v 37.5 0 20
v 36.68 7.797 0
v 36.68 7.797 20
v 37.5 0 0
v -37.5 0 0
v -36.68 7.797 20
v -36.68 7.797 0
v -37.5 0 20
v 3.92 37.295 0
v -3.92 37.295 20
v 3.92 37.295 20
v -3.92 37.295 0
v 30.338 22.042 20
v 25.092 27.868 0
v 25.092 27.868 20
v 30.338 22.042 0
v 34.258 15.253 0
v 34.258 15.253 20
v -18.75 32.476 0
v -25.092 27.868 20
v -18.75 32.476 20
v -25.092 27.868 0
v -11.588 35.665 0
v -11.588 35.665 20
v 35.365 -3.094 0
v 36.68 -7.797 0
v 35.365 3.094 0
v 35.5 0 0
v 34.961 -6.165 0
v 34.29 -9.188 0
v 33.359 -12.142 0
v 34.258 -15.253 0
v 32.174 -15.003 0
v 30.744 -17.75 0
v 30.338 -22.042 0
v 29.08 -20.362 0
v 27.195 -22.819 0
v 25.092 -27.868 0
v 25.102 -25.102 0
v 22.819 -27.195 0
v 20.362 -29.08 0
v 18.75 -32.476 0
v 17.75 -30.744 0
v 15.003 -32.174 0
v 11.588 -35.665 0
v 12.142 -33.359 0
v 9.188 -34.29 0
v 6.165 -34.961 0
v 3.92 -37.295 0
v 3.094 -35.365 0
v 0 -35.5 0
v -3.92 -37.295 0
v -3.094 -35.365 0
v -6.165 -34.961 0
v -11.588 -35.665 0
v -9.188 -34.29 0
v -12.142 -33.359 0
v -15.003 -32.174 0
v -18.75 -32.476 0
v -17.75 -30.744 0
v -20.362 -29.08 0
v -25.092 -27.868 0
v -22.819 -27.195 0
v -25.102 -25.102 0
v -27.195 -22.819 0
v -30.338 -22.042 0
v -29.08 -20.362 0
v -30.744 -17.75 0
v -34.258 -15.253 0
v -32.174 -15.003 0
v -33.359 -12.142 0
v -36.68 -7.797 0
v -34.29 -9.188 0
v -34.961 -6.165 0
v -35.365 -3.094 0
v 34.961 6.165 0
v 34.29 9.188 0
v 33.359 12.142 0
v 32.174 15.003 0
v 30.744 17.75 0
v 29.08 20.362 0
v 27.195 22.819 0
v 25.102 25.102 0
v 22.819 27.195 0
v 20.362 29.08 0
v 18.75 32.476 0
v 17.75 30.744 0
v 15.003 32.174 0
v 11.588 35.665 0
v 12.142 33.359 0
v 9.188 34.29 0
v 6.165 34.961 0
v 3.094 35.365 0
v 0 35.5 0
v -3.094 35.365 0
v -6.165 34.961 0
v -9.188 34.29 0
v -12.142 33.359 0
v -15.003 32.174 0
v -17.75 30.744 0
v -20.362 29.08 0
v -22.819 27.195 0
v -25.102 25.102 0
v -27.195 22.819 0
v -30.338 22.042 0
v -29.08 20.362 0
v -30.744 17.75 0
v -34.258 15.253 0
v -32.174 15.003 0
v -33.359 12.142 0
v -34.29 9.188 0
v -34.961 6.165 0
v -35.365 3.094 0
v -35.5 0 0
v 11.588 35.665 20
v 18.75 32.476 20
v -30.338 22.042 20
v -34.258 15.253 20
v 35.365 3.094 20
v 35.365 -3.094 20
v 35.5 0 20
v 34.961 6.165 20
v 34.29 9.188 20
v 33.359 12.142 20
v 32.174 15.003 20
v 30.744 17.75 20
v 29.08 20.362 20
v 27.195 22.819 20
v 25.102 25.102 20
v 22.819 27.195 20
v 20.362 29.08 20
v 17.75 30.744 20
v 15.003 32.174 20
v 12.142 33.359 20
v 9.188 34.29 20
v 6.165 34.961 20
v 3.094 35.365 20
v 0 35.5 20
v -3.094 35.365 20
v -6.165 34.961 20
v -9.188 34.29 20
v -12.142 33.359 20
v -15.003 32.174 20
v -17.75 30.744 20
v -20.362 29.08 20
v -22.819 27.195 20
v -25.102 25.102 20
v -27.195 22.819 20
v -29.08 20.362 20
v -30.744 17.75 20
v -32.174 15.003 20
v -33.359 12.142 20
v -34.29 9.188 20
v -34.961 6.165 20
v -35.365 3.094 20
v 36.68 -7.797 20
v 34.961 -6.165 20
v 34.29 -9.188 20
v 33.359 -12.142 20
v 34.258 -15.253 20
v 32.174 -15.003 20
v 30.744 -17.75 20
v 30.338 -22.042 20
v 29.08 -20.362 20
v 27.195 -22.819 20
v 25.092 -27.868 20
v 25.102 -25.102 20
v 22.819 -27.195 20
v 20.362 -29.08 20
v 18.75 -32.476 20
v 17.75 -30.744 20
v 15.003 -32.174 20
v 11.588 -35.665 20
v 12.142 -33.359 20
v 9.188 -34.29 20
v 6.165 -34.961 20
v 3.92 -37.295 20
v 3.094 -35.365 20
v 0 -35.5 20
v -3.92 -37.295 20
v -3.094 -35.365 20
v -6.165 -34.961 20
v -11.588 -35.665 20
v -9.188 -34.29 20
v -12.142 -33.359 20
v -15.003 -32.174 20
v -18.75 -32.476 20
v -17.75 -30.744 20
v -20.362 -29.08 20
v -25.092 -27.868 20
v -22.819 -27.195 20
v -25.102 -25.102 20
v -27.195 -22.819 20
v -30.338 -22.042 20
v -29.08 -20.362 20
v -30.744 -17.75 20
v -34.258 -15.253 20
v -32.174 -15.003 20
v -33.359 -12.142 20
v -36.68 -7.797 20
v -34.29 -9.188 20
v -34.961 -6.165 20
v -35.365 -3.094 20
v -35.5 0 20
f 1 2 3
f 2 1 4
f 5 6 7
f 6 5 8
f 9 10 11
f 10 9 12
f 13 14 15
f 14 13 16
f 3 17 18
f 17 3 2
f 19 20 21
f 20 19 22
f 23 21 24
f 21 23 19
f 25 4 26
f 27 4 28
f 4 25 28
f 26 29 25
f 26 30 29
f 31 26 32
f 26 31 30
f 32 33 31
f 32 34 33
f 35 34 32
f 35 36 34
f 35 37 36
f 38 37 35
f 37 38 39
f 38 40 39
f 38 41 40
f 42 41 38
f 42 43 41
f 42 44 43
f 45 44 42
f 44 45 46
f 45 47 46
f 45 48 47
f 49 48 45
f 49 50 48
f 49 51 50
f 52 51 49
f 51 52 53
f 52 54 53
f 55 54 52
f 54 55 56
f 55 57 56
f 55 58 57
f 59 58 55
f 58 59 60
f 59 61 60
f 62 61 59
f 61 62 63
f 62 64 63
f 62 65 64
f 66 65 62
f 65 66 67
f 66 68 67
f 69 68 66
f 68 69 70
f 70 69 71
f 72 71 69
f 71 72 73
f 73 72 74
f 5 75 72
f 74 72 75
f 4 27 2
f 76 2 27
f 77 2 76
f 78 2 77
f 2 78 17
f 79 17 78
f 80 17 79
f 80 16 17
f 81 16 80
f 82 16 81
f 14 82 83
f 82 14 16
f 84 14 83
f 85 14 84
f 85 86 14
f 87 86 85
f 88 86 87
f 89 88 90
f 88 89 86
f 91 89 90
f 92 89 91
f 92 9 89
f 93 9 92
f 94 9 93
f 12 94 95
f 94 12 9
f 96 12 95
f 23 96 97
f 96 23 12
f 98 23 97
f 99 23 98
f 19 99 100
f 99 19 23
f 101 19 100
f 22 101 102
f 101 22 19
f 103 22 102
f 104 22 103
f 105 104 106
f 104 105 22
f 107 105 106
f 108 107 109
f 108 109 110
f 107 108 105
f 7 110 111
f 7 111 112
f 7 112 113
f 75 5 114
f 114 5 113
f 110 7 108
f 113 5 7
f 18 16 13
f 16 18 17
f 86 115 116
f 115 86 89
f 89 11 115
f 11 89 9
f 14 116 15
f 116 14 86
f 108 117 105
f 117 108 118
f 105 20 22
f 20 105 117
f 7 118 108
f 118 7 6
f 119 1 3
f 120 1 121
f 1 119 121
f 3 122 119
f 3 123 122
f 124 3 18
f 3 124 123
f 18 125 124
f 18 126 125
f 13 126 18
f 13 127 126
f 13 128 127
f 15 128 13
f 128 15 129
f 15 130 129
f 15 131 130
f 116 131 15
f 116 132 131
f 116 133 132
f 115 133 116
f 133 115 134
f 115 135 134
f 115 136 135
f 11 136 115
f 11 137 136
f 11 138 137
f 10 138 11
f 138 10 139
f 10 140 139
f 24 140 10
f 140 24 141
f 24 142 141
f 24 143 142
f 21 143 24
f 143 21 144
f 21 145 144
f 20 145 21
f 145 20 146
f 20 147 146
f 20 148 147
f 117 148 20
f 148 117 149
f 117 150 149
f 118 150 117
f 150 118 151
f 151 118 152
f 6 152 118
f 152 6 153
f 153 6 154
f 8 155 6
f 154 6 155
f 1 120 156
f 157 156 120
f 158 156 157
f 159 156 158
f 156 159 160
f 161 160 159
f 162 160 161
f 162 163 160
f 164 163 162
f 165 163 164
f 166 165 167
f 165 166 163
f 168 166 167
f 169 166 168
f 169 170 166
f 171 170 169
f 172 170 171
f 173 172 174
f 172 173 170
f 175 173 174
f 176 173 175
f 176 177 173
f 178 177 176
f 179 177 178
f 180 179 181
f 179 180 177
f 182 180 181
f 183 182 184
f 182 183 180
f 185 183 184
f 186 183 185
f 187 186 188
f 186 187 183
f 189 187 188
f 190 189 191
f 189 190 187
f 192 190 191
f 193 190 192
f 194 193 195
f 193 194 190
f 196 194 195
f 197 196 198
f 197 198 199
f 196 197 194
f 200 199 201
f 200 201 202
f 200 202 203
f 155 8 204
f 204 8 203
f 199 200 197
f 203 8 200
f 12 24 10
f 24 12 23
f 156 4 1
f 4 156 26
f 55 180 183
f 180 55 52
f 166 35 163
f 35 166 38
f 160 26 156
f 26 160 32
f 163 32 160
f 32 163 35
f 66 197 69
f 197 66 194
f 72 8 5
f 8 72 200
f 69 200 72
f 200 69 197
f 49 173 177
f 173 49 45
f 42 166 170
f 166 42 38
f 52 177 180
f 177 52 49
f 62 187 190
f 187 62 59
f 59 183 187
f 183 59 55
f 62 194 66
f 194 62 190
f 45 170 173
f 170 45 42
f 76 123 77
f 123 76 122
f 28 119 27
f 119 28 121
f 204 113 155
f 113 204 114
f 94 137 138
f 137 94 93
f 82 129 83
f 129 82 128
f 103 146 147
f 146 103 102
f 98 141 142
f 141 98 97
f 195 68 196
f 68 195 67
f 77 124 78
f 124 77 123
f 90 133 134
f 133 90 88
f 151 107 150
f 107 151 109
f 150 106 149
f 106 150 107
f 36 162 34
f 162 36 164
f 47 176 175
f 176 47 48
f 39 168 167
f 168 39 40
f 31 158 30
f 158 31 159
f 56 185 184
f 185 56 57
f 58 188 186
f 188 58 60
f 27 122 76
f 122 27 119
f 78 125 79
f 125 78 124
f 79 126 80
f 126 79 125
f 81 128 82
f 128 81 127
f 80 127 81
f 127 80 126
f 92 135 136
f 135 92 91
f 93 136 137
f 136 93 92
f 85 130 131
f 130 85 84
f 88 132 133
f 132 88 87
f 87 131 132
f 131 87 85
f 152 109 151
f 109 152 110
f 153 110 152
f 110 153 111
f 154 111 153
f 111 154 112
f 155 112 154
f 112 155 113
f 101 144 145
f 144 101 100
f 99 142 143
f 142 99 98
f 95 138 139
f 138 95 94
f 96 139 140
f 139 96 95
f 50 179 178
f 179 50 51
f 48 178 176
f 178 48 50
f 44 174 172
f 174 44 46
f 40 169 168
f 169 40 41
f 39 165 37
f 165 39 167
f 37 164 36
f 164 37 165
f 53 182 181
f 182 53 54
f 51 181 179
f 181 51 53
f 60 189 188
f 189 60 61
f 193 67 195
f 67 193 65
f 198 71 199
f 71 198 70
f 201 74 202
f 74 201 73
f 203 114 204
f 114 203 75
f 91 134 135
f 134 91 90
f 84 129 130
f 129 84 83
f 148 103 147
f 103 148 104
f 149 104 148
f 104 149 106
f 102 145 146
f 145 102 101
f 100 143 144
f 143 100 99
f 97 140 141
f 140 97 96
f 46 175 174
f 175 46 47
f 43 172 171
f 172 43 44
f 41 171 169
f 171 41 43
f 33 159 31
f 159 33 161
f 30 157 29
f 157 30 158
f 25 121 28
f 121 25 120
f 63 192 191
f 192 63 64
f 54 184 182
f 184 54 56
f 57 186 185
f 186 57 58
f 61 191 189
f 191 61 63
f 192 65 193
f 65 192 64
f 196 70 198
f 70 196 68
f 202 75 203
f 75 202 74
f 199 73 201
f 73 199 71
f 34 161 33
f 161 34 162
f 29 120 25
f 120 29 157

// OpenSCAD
module main() {
	difference() {
		union() {
			cylinder(d = 75, h = 20);
		}

		cylinder(d = 71, h = 20, $fn = 72);
	}
}

main();
